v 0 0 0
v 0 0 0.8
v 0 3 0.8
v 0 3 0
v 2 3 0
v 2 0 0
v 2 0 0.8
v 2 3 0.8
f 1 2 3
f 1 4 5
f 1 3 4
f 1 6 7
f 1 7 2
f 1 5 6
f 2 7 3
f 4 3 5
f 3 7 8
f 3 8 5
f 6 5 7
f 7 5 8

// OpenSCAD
/* Warning, this is a very basic generator with a lot of approximation 
input data : [WDFN, QFB, 2x3x0.8mm, 8, , A, C04-21365A]
generated by com.zoubworld.electronics.cad.model3d.Basic
Date : Sun Feb 15 10:50:49 CET 2026
*/

//body
color("black")
translate([0,0,0])
cube([2.0,3.0,0.8], center=false);
